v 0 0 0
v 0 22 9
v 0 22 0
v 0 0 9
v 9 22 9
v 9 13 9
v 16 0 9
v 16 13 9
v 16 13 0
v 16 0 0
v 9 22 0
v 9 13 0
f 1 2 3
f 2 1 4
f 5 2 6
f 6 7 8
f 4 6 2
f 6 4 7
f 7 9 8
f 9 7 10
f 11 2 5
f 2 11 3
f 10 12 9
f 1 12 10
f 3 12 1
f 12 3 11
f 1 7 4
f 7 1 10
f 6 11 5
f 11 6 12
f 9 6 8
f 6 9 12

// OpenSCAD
/**
 * Martin Egli
 * 2021-12+04
 * repairing battery holder
 */
 
difference() {
    translate([0, 0, 0])
    cube([16, 22, 9]);
    translate([9, 13, -1])
    #cube([10, 10, 11]);
}
